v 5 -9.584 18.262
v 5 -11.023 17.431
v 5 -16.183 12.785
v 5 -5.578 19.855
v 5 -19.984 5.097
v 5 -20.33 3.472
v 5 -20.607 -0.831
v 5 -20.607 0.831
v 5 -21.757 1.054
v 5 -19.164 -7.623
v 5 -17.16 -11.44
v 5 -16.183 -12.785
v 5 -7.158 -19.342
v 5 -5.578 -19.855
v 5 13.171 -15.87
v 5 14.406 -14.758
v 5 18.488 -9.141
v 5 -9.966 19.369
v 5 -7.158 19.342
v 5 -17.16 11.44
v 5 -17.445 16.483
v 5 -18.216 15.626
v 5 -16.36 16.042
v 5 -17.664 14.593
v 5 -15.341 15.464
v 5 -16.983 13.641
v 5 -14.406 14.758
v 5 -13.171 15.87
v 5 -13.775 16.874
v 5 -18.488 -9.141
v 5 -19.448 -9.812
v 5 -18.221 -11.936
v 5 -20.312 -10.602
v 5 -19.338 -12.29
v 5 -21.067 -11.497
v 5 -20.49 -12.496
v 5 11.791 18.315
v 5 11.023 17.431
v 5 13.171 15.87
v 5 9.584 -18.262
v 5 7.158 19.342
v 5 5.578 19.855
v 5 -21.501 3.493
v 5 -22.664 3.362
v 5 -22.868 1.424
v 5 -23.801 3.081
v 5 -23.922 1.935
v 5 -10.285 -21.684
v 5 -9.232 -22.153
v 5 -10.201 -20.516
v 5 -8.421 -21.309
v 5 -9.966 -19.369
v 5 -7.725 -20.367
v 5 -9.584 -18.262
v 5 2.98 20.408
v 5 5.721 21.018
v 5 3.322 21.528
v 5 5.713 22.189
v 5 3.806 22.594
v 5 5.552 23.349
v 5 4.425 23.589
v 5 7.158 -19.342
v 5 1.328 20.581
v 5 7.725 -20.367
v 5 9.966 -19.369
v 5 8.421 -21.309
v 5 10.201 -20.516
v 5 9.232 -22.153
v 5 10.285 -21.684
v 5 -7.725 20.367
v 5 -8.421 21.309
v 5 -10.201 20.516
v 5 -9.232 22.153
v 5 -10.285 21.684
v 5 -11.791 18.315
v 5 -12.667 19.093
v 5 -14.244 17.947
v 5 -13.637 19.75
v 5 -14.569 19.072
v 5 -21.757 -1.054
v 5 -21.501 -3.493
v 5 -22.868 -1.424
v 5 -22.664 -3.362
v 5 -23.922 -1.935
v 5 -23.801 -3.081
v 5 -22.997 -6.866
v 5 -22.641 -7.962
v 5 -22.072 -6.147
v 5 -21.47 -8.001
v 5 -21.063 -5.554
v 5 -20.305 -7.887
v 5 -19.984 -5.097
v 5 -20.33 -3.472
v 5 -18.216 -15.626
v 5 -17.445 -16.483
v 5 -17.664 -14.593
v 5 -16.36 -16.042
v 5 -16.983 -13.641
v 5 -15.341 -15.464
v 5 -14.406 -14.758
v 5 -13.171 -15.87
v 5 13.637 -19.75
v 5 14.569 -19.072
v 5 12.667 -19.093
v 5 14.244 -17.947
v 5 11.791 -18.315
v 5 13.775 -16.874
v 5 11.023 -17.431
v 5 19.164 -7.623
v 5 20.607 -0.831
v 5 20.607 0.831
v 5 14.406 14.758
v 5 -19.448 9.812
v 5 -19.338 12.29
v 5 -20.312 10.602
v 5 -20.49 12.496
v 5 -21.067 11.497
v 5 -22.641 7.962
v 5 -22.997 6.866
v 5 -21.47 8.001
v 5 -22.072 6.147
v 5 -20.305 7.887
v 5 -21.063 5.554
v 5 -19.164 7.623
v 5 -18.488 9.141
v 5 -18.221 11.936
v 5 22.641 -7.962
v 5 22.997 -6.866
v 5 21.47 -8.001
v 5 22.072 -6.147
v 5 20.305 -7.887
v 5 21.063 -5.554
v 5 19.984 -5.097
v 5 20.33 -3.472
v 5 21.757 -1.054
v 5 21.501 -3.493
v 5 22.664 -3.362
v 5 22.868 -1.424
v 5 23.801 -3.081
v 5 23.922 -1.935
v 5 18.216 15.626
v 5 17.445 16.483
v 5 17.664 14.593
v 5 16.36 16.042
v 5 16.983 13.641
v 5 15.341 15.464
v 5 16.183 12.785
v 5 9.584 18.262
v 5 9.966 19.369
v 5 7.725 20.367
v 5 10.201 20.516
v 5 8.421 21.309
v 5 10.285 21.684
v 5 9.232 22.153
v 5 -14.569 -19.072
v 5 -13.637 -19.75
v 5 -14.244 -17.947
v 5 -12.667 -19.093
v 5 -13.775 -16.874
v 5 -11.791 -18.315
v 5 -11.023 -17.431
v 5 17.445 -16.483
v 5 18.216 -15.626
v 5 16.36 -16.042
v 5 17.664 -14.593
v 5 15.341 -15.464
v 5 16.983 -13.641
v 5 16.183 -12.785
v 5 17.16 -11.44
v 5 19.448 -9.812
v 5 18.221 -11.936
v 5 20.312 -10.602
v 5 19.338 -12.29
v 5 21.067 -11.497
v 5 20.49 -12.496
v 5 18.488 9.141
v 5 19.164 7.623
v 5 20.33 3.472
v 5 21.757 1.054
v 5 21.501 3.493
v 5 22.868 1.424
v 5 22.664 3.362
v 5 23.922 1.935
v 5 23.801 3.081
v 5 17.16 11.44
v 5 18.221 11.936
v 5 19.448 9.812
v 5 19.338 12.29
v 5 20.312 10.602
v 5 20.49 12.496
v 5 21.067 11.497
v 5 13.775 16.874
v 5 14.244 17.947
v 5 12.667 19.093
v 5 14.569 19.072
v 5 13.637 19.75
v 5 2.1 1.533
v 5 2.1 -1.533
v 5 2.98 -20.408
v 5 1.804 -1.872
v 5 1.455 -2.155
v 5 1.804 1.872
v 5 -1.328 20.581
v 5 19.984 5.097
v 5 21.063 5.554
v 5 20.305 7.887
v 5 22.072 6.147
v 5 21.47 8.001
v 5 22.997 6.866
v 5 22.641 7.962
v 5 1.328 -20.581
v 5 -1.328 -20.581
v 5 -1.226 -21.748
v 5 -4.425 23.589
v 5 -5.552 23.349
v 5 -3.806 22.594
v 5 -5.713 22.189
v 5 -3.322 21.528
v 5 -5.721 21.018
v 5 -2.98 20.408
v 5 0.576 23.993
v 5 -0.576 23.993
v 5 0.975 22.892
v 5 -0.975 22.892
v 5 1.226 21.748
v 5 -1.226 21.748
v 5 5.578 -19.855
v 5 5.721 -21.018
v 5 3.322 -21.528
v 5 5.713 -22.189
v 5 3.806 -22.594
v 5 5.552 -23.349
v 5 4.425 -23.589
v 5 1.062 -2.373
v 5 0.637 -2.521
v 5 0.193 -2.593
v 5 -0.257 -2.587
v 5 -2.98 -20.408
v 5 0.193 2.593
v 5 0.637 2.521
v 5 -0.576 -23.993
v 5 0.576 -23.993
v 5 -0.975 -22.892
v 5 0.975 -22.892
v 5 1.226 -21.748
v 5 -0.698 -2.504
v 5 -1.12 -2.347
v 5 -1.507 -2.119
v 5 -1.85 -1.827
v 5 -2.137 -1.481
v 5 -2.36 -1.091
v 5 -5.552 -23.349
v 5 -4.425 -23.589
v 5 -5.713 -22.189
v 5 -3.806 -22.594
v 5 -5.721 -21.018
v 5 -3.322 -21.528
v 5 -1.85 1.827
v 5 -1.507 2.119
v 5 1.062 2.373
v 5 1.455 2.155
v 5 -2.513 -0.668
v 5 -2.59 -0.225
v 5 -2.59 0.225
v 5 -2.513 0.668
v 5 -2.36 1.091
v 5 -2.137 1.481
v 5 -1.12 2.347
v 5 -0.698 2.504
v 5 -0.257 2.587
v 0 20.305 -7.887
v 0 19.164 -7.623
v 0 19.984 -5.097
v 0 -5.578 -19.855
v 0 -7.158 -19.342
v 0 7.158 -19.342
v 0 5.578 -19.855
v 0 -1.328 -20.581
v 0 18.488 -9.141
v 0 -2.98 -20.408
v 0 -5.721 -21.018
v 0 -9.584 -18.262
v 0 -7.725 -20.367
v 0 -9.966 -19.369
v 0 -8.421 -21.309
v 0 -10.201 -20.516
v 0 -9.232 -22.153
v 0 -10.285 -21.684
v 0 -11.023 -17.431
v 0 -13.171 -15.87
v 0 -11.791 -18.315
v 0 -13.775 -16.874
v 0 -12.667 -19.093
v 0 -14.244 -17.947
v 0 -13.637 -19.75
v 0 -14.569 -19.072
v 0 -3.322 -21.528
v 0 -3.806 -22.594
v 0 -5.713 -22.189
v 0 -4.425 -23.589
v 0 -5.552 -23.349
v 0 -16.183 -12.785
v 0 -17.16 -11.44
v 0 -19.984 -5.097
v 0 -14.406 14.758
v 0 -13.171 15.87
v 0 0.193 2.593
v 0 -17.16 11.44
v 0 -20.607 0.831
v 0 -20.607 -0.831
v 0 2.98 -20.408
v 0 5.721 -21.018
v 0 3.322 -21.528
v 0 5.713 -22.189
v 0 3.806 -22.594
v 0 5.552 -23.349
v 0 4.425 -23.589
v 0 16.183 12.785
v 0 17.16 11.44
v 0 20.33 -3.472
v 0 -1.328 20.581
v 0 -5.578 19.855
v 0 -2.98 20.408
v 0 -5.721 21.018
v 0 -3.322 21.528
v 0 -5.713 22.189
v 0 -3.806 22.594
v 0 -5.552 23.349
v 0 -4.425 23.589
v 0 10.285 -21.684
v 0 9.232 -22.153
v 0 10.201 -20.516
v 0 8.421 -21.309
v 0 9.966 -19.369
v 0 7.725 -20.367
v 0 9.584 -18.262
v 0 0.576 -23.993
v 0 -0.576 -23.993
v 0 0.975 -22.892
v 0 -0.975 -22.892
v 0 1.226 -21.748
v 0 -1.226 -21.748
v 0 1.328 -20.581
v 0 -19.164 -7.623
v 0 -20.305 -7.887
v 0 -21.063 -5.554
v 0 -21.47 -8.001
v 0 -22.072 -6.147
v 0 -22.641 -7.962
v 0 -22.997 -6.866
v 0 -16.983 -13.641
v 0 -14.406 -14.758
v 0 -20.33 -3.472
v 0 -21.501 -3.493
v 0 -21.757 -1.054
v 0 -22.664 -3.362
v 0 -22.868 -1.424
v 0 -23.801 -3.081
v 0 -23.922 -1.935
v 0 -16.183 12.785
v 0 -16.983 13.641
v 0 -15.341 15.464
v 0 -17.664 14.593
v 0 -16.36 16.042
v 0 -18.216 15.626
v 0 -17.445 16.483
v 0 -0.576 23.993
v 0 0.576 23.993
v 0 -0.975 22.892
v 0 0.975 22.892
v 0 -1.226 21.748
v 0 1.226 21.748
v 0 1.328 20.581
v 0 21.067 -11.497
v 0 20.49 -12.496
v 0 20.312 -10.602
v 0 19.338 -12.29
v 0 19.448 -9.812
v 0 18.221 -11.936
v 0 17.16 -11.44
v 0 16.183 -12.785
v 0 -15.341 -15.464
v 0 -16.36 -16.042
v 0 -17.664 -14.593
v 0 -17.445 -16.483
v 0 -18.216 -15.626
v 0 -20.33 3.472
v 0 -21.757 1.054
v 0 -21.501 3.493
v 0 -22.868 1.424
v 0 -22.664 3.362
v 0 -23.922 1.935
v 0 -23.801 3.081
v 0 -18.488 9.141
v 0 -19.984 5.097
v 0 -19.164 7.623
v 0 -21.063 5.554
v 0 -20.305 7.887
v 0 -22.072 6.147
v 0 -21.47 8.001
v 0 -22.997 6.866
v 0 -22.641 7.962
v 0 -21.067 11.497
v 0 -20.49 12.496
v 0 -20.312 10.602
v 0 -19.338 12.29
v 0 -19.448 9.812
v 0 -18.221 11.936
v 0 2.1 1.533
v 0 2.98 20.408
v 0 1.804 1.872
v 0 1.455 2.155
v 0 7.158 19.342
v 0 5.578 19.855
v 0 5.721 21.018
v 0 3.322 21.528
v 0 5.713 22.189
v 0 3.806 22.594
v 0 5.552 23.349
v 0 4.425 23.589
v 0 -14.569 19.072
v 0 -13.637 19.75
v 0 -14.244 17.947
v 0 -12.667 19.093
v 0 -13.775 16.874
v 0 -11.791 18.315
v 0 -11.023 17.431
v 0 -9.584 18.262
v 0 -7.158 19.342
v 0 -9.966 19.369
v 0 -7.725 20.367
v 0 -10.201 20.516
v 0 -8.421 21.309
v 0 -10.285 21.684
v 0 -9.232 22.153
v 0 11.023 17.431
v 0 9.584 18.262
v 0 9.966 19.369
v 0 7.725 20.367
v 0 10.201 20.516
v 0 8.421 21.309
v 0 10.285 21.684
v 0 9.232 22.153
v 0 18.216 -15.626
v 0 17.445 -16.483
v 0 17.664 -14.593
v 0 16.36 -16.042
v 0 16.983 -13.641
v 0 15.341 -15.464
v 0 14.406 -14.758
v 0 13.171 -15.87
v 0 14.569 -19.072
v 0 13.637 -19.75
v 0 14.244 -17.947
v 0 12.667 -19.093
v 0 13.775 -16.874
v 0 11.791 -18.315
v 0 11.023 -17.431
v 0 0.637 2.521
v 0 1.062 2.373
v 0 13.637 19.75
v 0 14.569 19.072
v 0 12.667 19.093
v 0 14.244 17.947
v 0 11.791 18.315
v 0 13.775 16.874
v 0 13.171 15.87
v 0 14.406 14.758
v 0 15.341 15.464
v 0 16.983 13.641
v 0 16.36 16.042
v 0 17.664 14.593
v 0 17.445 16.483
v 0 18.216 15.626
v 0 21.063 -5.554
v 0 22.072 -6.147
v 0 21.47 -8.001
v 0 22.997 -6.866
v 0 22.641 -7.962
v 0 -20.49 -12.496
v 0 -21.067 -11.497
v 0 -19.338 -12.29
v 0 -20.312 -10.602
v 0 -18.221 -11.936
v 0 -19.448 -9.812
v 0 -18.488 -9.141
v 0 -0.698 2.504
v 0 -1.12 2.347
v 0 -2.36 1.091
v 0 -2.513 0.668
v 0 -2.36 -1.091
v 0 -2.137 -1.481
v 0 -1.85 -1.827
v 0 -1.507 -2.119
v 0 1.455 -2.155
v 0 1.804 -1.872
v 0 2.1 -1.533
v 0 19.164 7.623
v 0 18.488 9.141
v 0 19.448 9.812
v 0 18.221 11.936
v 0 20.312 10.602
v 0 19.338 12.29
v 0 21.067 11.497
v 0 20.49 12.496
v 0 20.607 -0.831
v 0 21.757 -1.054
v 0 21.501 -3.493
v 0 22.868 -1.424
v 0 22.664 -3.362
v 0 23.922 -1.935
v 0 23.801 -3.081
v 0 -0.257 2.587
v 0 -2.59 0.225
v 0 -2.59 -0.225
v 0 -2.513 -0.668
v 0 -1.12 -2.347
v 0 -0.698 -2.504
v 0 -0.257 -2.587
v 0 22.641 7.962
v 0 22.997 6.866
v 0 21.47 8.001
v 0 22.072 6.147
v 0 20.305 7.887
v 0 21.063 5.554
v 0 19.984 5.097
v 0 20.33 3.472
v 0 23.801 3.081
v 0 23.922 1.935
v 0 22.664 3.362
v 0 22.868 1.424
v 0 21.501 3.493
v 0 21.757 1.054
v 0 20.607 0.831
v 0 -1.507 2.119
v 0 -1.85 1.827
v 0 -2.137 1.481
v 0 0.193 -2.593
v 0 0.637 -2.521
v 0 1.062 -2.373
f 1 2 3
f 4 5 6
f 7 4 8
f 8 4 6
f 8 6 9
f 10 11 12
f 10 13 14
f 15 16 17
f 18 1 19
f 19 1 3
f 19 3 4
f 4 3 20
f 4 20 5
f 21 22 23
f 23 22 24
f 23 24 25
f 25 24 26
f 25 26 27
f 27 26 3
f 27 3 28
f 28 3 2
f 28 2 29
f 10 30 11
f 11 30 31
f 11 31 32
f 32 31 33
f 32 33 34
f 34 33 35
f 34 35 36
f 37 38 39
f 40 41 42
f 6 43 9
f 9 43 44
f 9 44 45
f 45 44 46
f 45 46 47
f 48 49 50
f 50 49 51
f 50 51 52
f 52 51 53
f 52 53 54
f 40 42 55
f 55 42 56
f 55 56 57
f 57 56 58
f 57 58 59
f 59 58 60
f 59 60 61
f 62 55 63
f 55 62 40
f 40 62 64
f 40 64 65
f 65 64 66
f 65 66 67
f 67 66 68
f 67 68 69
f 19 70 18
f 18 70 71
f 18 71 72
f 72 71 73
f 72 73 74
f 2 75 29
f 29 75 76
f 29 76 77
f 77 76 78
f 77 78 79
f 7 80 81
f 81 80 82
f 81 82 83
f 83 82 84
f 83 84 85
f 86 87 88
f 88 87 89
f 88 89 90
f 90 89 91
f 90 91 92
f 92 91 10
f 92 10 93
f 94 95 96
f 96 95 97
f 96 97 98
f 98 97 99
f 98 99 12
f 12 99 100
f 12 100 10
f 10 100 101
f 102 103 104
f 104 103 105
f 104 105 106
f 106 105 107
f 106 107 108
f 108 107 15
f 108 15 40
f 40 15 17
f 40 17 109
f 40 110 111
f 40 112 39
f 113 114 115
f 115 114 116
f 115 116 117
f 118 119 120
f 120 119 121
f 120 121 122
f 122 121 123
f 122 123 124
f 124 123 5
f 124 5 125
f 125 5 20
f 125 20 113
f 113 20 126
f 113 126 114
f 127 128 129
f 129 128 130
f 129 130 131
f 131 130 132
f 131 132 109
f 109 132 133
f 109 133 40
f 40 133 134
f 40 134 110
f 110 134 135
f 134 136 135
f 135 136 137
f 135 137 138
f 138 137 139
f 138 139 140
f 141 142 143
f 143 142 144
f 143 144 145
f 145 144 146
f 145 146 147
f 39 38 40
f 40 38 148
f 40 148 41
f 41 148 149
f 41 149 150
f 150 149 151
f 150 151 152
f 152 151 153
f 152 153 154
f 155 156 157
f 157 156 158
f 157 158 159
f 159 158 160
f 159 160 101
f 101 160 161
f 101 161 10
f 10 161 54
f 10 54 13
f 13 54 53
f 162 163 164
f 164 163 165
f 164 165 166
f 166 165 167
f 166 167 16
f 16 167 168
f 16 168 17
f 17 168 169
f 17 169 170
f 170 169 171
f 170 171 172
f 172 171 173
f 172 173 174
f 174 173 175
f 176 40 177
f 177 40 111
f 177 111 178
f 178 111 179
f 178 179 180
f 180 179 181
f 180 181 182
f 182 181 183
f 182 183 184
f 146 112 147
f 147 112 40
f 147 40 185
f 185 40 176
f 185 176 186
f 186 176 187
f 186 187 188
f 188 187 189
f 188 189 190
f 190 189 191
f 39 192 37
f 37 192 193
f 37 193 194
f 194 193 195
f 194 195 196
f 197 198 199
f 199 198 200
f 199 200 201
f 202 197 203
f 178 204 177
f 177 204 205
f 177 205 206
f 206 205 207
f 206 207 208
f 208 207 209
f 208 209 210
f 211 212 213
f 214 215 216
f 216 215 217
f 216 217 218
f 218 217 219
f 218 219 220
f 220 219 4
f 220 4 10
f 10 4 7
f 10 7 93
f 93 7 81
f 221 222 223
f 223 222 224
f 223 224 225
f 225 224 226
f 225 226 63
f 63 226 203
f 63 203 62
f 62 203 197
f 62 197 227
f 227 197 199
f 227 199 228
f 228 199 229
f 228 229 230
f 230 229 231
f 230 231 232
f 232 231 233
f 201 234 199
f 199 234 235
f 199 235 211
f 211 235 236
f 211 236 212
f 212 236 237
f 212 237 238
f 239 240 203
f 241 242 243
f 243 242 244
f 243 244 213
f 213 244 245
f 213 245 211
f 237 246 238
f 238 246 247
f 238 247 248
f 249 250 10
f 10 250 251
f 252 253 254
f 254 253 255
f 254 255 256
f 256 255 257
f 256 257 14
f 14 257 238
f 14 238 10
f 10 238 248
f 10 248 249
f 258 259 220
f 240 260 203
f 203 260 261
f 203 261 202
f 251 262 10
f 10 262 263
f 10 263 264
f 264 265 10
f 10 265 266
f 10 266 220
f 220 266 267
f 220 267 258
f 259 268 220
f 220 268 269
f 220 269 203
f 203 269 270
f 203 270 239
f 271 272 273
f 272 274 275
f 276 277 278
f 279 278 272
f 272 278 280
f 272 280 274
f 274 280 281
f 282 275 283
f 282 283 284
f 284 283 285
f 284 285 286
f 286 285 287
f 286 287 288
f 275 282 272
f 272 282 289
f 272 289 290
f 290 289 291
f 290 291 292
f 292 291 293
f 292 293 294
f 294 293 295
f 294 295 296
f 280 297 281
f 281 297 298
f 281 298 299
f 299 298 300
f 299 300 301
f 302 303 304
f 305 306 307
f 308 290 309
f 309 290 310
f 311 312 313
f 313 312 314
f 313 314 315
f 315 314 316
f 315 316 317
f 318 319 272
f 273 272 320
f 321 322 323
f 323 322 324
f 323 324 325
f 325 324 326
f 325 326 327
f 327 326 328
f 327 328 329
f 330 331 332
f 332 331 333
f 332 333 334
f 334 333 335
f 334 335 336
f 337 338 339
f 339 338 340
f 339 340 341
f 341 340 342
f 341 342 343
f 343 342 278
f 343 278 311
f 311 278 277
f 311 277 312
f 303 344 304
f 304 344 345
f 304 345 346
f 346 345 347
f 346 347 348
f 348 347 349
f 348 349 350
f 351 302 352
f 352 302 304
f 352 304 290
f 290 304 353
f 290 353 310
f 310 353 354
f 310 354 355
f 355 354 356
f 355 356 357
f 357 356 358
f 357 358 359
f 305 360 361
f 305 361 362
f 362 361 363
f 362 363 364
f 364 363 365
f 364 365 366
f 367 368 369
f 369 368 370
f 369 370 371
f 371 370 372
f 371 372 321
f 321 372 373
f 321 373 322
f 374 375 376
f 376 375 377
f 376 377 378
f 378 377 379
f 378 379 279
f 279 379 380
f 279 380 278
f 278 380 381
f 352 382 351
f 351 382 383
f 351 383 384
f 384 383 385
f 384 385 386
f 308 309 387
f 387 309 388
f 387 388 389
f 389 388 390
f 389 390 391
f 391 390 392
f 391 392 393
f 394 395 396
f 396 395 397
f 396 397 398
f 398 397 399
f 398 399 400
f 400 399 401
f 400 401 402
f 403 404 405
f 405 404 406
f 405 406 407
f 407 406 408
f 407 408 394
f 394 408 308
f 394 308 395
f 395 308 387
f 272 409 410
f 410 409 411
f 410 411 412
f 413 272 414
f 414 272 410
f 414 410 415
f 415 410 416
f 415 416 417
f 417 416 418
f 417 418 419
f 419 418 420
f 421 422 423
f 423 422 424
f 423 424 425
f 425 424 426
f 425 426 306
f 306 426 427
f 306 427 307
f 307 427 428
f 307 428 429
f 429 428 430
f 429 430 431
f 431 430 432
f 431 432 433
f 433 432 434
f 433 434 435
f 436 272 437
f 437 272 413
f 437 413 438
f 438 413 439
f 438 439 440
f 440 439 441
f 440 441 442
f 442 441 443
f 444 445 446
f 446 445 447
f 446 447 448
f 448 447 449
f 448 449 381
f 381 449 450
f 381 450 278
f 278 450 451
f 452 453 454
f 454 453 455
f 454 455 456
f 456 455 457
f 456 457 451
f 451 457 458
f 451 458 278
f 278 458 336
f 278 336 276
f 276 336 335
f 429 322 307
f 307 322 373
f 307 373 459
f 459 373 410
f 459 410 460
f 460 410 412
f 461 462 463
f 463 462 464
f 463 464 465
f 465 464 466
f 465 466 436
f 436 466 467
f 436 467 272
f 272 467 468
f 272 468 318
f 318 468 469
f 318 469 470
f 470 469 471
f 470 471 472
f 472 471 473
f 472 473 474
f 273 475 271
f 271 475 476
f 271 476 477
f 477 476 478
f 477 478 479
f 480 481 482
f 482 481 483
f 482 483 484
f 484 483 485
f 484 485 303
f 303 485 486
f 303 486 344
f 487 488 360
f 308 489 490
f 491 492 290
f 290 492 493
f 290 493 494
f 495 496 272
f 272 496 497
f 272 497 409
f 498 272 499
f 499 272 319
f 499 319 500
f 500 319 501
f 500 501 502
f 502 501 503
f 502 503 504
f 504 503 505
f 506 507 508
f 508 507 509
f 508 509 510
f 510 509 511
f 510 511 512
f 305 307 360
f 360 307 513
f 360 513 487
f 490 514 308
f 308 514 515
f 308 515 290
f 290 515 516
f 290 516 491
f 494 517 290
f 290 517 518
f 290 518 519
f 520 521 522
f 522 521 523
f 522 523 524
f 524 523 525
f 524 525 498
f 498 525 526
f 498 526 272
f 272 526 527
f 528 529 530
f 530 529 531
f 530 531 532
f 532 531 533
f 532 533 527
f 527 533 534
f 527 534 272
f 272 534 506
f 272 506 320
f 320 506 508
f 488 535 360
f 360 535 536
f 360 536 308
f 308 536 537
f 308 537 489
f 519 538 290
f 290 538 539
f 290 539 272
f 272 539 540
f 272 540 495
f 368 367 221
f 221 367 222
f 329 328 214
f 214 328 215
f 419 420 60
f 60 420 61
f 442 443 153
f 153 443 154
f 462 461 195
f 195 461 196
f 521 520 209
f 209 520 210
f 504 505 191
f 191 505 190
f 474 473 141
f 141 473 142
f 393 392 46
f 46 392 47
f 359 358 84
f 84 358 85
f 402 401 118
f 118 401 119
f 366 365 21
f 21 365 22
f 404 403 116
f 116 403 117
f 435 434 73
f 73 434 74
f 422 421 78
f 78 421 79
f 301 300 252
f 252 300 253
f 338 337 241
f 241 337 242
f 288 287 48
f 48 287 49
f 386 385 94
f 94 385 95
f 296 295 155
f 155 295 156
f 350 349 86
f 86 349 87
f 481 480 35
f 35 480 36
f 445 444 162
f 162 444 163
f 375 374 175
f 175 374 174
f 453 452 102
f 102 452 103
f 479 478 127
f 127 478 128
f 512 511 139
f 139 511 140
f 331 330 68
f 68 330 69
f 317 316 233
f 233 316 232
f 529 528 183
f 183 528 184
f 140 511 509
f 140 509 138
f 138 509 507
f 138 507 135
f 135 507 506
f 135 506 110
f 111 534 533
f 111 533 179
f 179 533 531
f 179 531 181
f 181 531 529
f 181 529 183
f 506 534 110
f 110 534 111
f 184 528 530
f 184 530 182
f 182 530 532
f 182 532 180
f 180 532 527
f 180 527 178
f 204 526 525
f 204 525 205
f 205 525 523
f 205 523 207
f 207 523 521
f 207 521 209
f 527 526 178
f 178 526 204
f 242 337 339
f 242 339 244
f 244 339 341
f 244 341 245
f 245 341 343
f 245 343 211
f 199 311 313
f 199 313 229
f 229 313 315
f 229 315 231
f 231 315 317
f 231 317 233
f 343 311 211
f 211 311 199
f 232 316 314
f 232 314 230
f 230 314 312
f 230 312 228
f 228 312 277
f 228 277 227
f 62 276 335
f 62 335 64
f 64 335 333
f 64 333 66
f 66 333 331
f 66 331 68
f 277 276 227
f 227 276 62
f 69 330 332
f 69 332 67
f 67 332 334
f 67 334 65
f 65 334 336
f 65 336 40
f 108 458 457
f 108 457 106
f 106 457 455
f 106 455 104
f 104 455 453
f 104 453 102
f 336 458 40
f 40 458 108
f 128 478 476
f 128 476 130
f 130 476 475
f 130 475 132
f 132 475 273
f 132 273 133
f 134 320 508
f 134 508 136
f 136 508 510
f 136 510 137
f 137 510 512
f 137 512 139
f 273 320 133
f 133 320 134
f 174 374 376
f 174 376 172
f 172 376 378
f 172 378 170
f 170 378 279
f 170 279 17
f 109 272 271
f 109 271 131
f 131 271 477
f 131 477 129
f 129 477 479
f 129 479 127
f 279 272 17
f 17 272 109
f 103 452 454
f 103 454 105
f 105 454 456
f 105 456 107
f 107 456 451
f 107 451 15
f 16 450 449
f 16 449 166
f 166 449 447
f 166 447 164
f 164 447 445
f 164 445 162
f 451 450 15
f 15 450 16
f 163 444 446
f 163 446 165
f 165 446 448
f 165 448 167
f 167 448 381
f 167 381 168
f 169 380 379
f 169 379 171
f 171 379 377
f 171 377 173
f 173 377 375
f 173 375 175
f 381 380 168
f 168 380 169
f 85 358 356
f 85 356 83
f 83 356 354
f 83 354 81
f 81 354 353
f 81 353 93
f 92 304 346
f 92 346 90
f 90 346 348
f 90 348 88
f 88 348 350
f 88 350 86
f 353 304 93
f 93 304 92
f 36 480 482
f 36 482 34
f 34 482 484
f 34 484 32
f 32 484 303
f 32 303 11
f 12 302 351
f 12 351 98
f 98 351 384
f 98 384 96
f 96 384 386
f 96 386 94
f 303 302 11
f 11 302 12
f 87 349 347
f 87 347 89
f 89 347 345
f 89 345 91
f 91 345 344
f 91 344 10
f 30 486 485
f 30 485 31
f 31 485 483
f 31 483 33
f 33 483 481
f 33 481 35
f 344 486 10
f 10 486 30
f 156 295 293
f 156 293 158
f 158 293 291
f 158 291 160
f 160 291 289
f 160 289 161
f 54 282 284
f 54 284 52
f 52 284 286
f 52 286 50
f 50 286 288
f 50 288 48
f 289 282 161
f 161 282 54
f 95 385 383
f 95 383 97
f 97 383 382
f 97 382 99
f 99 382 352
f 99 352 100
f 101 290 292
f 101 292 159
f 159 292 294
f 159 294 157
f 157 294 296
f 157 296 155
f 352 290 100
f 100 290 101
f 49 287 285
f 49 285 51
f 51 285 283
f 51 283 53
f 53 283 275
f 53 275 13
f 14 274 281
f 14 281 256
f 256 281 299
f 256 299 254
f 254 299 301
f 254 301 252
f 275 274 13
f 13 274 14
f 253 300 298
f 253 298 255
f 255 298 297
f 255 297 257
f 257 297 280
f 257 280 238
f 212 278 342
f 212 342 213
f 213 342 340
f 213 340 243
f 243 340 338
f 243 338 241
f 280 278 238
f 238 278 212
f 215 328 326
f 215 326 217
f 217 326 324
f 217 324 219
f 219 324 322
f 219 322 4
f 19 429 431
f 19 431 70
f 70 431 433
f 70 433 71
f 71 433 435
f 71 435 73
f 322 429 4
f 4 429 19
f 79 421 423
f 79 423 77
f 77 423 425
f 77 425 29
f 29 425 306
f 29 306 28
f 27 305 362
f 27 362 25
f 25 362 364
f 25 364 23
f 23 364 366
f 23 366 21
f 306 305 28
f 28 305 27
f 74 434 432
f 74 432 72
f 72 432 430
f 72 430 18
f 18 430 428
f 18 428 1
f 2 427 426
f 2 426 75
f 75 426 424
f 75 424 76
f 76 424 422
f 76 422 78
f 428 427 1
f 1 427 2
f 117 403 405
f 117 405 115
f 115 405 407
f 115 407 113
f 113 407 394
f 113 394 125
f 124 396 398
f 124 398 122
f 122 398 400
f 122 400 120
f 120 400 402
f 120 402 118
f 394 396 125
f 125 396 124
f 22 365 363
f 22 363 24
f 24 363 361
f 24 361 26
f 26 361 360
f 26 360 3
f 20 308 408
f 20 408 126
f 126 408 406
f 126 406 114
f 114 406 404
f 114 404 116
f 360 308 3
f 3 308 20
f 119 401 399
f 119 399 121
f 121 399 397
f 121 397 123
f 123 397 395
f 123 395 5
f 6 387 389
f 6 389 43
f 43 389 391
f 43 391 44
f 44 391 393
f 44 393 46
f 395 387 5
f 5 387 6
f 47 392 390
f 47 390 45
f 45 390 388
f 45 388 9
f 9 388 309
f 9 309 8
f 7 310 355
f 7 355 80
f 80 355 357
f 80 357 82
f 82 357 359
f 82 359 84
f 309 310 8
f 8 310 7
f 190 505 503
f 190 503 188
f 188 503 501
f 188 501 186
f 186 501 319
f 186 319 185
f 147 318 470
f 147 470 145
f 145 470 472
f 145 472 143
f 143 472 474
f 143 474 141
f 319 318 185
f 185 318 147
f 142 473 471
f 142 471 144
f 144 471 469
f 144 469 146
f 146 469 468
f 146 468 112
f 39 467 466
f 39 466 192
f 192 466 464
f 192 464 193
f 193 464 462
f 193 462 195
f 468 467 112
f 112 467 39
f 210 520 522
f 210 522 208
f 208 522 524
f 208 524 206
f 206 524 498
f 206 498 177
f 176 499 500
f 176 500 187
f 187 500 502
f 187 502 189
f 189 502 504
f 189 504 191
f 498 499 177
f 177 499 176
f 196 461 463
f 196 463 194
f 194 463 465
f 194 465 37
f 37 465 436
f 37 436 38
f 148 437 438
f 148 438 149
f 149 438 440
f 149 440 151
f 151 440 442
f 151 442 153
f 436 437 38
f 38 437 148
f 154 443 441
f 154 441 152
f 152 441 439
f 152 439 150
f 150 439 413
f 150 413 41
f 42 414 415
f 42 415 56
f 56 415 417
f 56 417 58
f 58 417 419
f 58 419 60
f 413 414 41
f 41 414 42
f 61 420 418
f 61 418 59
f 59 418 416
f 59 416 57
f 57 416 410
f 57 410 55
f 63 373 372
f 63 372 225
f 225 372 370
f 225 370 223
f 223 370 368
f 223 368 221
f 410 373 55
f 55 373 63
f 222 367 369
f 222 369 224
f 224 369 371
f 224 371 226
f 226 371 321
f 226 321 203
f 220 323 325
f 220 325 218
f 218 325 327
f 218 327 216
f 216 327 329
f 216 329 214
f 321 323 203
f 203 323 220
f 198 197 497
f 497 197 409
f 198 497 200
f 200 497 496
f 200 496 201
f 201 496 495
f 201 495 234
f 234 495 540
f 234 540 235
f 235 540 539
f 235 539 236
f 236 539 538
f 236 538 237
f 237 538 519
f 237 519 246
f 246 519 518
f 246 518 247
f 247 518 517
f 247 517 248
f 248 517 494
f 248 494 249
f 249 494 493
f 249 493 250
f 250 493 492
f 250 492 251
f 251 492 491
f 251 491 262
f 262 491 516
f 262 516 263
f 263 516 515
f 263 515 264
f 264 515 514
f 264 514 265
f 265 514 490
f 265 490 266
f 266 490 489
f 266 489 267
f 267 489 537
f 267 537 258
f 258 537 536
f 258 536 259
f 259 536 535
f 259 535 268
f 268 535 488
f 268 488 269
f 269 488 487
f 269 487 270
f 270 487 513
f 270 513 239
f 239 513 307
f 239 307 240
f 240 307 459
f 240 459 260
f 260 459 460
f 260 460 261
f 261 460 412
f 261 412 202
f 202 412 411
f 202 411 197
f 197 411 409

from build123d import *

# Parameters (mm, degrees)
BASPROSKE_W                   = 5
BASPROSKE_H                   = 24
TOOTHCUT_DEPTH                = 35.307433597
TEETHCUTS_COUNT               = 30
TEETHCUTS_ANGLE               = 348
BORSKE_R                      = 1
BORE_DEPTH                    = 50.0000508
TAGLIO_ESTRUSIONE1_DEPTH      = 35.252832836
TAGLIO_ESTRUSIONE1_DEPTH_BACK = 35.252832836


with BuildPart() as part:
    # BasProSke → Base-Revolve (revolve)
    with BuildSketch(Plane(origin=(0, 0, 0), x_dir=(1, 0, 0), z_dir=(0, 1, 0)), mode=Mode.PRIVATE) as base_revolve_sk:
        with Locations((2.5, 12)):
            Rectangle(BASPROSKE_W, BASPROSKE_H)
    revolve(base_revolve_sk.sketch.rotate(Axis((-10, 0, 0), (1, 0, 0)), 180), axis=Axis((-10, 0, 0), (1, 0, 0)))

    # TooCutSke → ToothCut (cut, through all)
    with BuildSketch(Plane(origin=(0, 0, 0), x_dir=(0, 0, -1), z_dir=(1, 0, 0))):
        with BuildLine():
            ThreePointArc((0.830875803, 20.607256523), (0, 20.624), (-0.830875803, 20.607256523))
            ThreePointArc((-0.830875803, 20.607256523), (-1.224899184, 22.331948106), (-1.948690982, 23.946240803))
            ThreePointArc((-1.948690982, 23.946240803), (0, 24.0254), (1.948690982, 23.946240803))
            ThreePointArc((1.948690982, 23.946240803), (1.224899184, 22.331948106), (0.830875803, 20.607256523))
        make_face()
    toothcut = extrude(amount=TOOTHCUT_DEPTH, mode=Mode.SUBTRACT)

    # TeethCuts: ToothCut ×30 about axis
    teethcuts_axis = Axis((-10, 0, 0), (1, 0, 0))
    for i in range(1, TEETHCUTS_COUNT):
        add(toothcut.rotate(teethcuts_axis, i * TEETHCUTS_ANGLE / (TEETHCUTS_COUNT - 1)), mode=Mode.SUBTRACT)

    # BorSke → Bore (cut, symmetric)
    with BuildSketch(Plane(origin=(0, 0, 0), x_dir=(0, 0, -1), z_dir=(1, 0, 0))):
        with Locations(Location((0, 0, 0), (0, 0, 180))):
            Circle(BORSKE_R)
    extrude(amount=BORE_DEPTH, both=True, mode=Mode.SUBTRACT)

    # Schizzo2 → Taglio-Estrusione1 (cut, two sides: drawn at the far end of the back side and taken through both)
    with BuildSketch(Plane.ZY.offset(-TAGLIO_ESTRUSIONE1_DEPTH_BACK)):
        with BuildLine():
            Line((1.532970972, 2.1), (-1.532970972, 2.1))
            ThreePointArc((-1.532970972, 2.1), (-1.177768117, -2.317943542), (2.6, 0))
            ThreePointArc((2.6, 0), (2.317943542, 1.177768117), (1.532970972, 2.1))
        make_face()
    extrude(amount=TAGLIO_ESTRUSIONE1_DEPTH + TAGLIO_ESTRUSIONE1_DEPTH_BACK, mode=Mode.SUBTRACT)


solid = part.part
